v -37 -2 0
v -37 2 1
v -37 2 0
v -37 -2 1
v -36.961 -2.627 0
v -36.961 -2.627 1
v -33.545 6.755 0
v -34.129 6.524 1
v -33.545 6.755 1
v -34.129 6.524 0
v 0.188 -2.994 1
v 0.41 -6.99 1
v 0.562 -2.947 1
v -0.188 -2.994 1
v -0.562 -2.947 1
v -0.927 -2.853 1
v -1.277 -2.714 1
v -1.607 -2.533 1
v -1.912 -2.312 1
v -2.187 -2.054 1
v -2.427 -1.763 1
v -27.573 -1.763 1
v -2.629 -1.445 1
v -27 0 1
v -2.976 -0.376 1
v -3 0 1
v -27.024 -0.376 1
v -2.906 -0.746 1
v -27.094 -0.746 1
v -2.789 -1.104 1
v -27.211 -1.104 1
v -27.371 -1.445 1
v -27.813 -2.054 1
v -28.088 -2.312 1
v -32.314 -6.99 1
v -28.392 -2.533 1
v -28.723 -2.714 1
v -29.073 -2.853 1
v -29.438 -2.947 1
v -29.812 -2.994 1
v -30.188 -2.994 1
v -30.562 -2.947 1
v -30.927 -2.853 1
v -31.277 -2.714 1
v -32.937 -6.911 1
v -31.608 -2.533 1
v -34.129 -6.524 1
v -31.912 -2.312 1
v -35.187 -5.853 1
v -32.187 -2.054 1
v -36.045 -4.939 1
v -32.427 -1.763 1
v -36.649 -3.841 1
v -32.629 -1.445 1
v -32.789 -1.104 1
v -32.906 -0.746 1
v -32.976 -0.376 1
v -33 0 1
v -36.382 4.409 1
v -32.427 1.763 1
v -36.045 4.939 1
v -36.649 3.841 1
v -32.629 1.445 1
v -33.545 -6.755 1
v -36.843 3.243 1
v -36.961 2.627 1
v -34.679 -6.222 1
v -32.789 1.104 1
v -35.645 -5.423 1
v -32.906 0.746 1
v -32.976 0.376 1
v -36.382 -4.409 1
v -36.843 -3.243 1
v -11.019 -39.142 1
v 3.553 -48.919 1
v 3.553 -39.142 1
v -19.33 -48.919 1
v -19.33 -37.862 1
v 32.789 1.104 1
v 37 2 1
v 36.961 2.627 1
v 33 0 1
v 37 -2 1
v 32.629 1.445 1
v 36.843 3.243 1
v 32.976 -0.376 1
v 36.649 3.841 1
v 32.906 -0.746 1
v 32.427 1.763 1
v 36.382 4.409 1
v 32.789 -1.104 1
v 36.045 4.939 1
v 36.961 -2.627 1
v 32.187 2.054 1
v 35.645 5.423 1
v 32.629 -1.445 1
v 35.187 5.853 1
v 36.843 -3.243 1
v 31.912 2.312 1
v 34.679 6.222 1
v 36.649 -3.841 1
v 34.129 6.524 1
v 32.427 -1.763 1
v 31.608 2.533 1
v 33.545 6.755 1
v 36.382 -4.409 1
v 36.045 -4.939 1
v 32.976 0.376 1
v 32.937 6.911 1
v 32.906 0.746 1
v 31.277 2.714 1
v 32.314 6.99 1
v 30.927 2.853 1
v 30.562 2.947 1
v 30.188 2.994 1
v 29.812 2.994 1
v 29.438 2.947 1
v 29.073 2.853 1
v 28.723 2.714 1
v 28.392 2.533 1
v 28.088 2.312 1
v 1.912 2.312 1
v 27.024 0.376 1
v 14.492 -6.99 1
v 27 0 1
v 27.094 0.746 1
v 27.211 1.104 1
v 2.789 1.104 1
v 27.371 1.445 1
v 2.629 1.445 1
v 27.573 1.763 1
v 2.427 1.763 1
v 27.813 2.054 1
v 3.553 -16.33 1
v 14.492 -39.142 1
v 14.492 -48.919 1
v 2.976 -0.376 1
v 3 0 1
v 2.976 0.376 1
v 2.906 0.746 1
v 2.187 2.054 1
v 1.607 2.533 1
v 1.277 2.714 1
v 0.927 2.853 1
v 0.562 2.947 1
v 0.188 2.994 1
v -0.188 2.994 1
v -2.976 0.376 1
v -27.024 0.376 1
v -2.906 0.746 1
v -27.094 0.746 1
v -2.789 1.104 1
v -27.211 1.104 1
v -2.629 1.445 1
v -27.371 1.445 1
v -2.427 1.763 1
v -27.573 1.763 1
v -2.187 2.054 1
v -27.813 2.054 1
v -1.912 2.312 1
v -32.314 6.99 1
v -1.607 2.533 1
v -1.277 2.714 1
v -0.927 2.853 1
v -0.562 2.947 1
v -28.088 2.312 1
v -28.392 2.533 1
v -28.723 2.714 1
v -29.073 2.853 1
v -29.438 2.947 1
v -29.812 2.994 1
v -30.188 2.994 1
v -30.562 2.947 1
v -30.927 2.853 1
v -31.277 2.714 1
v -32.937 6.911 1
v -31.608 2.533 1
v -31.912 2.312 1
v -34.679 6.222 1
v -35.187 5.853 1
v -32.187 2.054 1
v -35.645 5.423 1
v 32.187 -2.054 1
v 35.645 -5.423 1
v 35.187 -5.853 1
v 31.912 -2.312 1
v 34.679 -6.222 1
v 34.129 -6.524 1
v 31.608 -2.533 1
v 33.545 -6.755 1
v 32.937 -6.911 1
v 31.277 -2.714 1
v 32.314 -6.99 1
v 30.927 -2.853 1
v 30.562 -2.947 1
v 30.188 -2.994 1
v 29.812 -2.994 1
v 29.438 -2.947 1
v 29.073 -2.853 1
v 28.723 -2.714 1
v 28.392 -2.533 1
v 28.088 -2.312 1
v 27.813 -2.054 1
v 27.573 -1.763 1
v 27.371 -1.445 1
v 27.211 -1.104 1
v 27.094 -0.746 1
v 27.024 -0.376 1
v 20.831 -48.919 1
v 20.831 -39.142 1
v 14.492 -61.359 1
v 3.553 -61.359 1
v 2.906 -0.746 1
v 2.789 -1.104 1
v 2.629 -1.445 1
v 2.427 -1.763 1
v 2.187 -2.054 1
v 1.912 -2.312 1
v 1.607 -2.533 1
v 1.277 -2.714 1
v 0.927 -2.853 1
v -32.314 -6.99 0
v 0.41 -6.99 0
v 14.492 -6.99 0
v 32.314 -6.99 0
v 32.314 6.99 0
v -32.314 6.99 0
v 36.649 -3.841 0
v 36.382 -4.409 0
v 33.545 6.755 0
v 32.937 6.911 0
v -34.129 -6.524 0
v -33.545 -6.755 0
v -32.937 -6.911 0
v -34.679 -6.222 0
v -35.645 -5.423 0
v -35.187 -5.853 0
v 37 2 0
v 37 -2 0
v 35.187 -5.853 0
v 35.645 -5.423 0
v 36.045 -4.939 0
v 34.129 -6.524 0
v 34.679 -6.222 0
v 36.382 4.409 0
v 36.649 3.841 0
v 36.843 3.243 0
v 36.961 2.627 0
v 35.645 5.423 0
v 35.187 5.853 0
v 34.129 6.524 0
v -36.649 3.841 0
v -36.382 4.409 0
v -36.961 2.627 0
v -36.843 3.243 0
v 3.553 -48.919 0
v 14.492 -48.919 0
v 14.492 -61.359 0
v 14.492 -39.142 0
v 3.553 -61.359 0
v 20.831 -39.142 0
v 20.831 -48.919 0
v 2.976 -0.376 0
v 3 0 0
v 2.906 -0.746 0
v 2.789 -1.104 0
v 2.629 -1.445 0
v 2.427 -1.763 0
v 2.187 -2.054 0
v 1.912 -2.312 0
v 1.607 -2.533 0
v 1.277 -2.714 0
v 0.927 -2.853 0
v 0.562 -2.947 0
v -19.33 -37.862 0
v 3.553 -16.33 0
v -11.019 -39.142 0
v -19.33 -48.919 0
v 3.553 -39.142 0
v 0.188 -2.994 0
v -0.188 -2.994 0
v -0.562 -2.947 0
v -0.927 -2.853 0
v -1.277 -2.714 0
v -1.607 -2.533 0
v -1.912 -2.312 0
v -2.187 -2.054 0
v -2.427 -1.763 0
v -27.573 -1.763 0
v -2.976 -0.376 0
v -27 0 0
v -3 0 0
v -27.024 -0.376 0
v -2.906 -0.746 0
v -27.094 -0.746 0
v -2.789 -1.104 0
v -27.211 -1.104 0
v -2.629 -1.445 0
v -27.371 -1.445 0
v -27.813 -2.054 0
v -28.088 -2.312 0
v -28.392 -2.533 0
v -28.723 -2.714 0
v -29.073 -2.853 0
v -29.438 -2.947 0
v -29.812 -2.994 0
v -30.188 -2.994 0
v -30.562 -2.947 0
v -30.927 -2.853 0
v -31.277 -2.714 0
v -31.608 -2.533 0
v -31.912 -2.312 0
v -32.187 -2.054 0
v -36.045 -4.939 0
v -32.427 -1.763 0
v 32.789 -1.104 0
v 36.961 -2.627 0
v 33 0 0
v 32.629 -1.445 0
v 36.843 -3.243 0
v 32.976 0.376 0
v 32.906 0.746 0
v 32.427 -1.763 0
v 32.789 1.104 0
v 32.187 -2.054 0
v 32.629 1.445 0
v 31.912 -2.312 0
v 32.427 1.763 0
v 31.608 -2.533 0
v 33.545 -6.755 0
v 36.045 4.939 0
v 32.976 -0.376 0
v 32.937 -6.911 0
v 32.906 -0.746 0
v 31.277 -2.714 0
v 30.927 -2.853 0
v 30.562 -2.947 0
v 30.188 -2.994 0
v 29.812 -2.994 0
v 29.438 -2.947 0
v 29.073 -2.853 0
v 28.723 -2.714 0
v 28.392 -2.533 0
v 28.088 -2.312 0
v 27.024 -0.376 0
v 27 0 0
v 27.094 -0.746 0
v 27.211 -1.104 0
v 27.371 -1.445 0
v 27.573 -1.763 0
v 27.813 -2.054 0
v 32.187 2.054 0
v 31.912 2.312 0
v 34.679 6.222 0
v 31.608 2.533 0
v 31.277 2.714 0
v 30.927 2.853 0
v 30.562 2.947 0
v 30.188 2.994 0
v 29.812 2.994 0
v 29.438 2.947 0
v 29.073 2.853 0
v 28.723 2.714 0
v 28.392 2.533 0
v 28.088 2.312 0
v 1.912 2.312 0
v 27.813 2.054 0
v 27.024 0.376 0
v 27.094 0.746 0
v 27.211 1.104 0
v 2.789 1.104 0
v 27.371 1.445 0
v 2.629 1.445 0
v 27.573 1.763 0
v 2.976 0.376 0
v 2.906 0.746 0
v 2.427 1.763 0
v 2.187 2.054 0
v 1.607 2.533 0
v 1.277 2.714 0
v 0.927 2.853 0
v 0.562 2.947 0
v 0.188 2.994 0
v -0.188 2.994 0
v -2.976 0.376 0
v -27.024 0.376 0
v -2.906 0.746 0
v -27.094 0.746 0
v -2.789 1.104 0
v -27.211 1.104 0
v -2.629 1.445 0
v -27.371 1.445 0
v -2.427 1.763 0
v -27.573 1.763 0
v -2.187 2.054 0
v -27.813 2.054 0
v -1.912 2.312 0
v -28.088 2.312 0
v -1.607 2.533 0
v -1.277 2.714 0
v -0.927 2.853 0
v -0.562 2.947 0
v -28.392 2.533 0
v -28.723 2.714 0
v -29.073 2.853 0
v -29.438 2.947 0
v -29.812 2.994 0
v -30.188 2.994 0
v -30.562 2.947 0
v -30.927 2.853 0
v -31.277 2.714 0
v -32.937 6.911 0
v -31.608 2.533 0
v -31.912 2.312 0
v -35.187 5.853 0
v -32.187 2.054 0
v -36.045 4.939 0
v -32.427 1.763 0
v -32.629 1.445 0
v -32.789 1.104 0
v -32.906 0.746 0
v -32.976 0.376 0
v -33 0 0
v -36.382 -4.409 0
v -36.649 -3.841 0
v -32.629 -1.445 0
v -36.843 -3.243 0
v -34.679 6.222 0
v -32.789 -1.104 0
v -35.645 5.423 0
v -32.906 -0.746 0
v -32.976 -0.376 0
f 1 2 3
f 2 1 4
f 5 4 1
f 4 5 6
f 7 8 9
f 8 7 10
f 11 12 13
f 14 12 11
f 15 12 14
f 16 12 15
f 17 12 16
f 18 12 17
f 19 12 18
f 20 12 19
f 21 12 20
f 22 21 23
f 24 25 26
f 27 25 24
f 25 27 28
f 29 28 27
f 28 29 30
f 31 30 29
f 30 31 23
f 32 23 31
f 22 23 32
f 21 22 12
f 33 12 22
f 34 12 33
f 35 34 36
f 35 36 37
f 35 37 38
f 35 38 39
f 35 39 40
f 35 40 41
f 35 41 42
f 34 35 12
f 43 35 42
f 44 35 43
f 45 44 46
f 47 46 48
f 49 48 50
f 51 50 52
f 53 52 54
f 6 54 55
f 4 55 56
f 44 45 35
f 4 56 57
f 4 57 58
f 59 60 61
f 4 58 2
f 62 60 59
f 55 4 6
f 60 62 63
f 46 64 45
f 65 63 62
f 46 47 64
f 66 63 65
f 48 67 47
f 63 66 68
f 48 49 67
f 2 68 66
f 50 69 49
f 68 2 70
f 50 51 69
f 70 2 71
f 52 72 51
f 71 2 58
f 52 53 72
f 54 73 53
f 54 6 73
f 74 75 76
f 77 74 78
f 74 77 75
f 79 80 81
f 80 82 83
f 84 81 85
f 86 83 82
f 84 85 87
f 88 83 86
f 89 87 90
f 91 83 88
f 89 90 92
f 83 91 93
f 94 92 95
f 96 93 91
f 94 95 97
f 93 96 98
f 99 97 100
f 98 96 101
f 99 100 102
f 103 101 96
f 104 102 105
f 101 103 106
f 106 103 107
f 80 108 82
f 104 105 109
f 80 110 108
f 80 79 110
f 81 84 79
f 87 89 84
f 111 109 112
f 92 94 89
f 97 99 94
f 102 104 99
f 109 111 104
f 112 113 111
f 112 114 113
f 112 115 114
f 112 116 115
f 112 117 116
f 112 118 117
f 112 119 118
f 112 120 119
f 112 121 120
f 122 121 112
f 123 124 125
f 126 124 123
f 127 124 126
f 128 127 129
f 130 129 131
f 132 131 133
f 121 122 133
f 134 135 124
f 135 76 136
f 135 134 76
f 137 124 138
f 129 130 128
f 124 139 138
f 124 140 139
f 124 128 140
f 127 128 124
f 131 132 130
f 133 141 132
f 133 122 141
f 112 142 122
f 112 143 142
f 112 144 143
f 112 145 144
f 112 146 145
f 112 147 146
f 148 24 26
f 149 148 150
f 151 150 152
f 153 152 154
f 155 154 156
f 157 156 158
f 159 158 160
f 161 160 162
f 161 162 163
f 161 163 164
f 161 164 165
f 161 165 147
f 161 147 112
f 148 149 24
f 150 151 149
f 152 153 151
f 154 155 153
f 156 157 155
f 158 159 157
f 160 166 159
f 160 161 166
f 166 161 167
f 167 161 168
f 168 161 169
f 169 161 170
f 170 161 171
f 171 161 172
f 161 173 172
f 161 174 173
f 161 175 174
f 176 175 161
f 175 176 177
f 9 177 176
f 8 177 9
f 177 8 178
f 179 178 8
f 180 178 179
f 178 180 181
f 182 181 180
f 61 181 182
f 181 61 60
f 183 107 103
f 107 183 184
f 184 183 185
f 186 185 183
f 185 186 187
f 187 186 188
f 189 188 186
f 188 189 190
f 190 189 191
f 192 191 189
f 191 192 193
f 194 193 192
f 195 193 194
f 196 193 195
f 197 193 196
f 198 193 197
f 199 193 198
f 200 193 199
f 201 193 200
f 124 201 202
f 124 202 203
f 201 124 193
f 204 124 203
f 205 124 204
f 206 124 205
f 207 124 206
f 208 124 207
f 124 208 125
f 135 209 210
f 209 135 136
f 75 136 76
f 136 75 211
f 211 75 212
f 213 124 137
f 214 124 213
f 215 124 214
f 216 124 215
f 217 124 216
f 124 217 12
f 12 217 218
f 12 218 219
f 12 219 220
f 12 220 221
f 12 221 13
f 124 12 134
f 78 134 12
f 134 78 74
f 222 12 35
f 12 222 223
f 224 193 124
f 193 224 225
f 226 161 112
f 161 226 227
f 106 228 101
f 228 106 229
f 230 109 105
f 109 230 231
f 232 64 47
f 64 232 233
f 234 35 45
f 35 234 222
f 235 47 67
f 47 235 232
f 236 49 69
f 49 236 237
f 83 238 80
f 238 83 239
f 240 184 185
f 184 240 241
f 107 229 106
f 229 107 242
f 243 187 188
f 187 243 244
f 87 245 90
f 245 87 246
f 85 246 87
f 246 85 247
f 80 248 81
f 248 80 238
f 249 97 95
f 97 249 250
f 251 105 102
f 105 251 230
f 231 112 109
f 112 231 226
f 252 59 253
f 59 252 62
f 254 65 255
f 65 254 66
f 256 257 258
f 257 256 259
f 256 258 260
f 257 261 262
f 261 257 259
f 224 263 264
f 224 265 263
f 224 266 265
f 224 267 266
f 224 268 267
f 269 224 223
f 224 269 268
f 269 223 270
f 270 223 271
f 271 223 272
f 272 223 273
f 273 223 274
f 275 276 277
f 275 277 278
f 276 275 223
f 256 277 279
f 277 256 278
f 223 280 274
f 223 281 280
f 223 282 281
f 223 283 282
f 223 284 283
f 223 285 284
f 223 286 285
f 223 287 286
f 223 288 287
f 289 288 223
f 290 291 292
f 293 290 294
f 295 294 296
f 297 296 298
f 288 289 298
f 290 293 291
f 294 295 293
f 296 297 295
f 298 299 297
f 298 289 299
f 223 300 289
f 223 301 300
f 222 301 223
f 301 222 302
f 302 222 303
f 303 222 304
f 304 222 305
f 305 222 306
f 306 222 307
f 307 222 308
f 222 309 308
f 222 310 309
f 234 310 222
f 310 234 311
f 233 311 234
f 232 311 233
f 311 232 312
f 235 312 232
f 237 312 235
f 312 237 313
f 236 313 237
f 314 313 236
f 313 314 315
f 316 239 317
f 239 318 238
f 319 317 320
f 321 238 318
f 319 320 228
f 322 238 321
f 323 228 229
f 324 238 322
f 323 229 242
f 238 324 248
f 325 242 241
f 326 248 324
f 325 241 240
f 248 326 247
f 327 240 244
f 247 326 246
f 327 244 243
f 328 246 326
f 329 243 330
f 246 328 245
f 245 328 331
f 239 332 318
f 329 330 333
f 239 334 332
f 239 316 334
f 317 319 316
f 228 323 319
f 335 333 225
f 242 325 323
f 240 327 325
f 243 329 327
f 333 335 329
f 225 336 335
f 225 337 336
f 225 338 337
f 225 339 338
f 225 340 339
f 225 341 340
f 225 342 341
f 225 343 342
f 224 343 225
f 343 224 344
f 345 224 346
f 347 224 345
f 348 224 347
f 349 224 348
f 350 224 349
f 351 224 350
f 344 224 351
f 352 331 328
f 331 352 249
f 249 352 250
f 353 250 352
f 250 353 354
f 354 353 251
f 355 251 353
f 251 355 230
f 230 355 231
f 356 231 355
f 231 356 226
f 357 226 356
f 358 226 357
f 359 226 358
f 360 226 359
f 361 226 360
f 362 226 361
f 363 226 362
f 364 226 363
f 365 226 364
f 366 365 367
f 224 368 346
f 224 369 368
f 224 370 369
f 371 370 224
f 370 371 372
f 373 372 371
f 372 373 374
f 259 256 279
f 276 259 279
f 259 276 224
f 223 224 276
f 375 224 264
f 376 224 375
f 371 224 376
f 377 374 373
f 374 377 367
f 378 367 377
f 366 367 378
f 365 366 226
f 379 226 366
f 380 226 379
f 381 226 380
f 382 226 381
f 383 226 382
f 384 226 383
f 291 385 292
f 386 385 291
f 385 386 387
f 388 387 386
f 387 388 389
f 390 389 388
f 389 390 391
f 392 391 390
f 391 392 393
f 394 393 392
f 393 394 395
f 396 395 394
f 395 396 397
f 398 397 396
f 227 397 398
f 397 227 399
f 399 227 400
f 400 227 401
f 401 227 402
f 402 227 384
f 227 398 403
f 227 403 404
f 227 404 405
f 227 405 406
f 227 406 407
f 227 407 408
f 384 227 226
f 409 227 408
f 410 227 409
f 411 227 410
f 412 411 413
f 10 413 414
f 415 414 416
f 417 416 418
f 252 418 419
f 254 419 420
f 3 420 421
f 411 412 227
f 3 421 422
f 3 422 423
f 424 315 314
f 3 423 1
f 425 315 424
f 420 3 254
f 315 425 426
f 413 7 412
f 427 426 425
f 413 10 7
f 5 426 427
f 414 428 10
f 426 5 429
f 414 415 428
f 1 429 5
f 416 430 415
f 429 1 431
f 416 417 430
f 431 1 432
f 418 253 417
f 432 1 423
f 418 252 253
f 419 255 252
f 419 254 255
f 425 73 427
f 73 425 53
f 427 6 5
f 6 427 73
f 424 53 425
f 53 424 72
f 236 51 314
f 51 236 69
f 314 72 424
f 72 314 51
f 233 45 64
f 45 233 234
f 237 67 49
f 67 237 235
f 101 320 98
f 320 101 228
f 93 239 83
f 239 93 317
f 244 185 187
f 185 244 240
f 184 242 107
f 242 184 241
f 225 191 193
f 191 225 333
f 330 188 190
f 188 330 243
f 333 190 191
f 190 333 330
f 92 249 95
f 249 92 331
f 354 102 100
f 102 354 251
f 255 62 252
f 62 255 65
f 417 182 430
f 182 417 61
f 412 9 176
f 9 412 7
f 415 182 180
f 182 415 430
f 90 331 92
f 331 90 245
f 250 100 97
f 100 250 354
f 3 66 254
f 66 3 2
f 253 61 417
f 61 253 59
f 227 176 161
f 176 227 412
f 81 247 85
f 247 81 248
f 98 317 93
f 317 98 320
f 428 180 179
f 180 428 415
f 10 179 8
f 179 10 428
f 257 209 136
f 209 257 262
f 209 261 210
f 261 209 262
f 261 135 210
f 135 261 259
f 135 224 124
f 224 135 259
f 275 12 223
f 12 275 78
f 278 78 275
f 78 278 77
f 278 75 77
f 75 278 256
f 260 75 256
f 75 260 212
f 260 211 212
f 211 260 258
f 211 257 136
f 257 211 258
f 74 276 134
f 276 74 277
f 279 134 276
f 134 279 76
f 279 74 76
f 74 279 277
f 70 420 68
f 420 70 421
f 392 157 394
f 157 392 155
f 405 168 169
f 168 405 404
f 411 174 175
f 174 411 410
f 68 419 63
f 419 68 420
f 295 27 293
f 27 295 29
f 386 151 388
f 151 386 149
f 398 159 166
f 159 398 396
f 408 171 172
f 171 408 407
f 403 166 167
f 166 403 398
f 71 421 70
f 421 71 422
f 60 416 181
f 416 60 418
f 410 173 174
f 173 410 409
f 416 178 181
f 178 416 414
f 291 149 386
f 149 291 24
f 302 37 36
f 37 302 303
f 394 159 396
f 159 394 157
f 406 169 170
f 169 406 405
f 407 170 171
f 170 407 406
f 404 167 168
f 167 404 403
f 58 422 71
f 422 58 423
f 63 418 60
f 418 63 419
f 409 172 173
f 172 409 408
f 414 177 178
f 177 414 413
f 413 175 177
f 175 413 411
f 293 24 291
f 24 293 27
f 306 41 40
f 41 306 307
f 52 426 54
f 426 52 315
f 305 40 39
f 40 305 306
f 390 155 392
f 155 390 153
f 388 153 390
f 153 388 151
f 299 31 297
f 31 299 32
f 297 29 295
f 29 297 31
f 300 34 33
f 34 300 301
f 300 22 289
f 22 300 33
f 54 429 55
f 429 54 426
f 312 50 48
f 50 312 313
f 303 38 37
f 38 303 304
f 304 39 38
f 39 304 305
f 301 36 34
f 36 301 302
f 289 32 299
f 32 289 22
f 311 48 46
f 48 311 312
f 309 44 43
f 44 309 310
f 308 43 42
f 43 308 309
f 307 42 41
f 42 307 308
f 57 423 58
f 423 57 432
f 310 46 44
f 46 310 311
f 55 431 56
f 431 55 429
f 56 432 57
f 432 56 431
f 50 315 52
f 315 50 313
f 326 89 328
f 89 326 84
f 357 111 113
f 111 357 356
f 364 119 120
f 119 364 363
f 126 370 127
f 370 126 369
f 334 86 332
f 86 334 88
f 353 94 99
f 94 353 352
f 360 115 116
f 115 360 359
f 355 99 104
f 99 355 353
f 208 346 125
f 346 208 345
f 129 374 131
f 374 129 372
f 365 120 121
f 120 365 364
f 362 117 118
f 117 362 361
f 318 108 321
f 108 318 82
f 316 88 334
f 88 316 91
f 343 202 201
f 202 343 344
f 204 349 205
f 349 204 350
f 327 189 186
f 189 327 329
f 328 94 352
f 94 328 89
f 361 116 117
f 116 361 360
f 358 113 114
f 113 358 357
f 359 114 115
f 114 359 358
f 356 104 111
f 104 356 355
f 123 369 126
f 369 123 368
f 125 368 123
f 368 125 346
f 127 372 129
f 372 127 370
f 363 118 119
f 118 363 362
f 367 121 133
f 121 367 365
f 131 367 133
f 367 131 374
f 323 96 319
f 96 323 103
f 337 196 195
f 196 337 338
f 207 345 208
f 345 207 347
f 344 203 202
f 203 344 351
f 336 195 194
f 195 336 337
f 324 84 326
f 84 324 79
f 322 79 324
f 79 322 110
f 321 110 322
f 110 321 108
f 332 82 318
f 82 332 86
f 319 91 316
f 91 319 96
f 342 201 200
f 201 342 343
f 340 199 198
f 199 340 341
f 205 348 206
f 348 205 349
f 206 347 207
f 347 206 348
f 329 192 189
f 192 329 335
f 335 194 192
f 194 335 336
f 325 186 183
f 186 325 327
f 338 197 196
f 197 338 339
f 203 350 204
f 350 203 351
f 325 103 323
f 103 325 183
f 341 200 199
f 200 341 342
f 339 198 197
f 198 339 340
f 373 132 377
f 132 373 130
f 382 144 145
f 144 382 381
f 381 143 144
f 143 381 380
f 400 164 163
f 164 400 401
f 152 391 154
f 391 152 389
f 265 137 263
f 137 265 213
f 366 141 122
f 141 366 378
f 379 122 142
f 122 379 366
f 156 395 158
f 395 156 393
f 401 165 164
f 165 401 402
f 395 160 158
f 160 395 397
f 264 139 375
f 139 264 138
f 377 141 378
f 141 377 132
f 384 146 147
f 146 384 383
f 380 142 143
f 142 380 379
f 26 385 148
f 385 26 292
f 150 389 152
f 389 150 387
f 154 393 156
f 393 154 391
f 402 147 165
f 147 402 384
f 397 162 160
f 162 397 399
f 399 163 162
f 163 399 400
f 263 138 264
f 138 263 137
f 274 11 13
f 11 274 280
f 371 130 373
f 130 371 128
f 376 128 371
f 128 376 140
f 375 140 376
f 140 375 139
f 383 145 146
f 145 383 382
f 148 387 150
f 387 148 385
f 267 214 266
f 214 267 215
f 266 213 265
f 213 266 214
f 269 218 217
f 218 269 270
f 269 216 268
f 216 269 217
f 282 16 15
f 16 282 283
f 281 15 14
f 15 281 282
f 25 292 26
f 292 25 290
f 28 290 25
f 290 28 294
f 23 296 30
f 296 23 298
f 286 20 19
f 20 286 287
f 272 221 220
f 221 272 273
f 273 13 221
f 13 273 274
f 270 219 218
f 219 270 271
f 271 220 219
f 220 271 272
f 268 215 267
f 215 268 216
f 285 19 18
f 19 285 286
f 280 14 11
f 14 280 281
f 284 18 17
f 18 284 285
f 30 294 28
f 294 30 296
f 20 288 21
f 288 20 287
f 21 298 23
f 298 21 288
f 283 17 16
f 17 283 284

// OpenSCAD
$fn = 50;


difference() {
	union() {
		translate(v = [0, 0, 0]) {
			rotate(a = [0, 0, 0]) {
				hull() {
					translate(v = [-32.0000000000, 2.0000000000, 0]) {
						rotate(a = [0, 0, 0]) {
							translate(v = [0, 0, 0]) {
								rotate(a = [0, 0, 0]) {
									cylinder(h = 1, r = 5);
								}
							}
						}
					}
					translate(v = [32.0000000000, 2.0000000000, 0]) {
						rotate(a = [0, 0, 0]) {
							translate(v = [0, 0, 0]) {
								rotate(a = [0, 0, 0]) {
									cylinder(h = 1, r = 5);
								}
							}
						}
					}
					translate(v = [-32.0000000000, -2.0000000000, 0]) {
						rotate(a = [0, 0, 0]) {
							translate(v = [0, 0, 0]) {
								rotate(a = [0, 0, 0]) {
									cylinder(h = 1, r = 5);
								}
							}
						}
					}
					translate(v = [32.0000000000, -2.0000000000, 0]) {
						rotate(a = [0, 0, 0]) {
							translate(v = [0, 0, 0]) {
								rotate(a = [0, 0, 0]) {
									cylinder(h = 1, r = 5);
								}
							}
						}
					}
				}
			}
		}
		translate(v = [0, -5, 0]) {
			rotate(a = [0, 0, 0]) {
				linear_extrude(height = 1) {
					text(font = "DejaVu Sans Mono:style=Bold", halign = "center", size = 57.0000000000, text = "4", valign = "top");
				}
			}
		}
	}
	union() {
		translate(v = [-30.0000000000, 0.0000000000, -125.0000000000]) {
			rotate(a = [0, 0, 0]) {
				cylinder(h = 250, r = 3.0000000000);
			}
		}
		translate(v = [30.0000000000, 0.0000000000, -125.0000000000]) {
			rotate(a = [0, 0, 0]) {
				cylinder(h = 250, r = 3.0000000000);
			}
		}
		translate(v = [30.0000000000, 0.0000000000, -125.0000000000]) {
			rotate(a = [0, 0, 0]) {
				cylinder(h = 250, r = 3.0000000000);
			}
		}
		translate(v = [0, 0, -125.0000000000]) {
			rotate(a = [0, 0, 0]) {
				cylinder(h = 250, r = 3.0000000000);
			}
		}
	}
}
